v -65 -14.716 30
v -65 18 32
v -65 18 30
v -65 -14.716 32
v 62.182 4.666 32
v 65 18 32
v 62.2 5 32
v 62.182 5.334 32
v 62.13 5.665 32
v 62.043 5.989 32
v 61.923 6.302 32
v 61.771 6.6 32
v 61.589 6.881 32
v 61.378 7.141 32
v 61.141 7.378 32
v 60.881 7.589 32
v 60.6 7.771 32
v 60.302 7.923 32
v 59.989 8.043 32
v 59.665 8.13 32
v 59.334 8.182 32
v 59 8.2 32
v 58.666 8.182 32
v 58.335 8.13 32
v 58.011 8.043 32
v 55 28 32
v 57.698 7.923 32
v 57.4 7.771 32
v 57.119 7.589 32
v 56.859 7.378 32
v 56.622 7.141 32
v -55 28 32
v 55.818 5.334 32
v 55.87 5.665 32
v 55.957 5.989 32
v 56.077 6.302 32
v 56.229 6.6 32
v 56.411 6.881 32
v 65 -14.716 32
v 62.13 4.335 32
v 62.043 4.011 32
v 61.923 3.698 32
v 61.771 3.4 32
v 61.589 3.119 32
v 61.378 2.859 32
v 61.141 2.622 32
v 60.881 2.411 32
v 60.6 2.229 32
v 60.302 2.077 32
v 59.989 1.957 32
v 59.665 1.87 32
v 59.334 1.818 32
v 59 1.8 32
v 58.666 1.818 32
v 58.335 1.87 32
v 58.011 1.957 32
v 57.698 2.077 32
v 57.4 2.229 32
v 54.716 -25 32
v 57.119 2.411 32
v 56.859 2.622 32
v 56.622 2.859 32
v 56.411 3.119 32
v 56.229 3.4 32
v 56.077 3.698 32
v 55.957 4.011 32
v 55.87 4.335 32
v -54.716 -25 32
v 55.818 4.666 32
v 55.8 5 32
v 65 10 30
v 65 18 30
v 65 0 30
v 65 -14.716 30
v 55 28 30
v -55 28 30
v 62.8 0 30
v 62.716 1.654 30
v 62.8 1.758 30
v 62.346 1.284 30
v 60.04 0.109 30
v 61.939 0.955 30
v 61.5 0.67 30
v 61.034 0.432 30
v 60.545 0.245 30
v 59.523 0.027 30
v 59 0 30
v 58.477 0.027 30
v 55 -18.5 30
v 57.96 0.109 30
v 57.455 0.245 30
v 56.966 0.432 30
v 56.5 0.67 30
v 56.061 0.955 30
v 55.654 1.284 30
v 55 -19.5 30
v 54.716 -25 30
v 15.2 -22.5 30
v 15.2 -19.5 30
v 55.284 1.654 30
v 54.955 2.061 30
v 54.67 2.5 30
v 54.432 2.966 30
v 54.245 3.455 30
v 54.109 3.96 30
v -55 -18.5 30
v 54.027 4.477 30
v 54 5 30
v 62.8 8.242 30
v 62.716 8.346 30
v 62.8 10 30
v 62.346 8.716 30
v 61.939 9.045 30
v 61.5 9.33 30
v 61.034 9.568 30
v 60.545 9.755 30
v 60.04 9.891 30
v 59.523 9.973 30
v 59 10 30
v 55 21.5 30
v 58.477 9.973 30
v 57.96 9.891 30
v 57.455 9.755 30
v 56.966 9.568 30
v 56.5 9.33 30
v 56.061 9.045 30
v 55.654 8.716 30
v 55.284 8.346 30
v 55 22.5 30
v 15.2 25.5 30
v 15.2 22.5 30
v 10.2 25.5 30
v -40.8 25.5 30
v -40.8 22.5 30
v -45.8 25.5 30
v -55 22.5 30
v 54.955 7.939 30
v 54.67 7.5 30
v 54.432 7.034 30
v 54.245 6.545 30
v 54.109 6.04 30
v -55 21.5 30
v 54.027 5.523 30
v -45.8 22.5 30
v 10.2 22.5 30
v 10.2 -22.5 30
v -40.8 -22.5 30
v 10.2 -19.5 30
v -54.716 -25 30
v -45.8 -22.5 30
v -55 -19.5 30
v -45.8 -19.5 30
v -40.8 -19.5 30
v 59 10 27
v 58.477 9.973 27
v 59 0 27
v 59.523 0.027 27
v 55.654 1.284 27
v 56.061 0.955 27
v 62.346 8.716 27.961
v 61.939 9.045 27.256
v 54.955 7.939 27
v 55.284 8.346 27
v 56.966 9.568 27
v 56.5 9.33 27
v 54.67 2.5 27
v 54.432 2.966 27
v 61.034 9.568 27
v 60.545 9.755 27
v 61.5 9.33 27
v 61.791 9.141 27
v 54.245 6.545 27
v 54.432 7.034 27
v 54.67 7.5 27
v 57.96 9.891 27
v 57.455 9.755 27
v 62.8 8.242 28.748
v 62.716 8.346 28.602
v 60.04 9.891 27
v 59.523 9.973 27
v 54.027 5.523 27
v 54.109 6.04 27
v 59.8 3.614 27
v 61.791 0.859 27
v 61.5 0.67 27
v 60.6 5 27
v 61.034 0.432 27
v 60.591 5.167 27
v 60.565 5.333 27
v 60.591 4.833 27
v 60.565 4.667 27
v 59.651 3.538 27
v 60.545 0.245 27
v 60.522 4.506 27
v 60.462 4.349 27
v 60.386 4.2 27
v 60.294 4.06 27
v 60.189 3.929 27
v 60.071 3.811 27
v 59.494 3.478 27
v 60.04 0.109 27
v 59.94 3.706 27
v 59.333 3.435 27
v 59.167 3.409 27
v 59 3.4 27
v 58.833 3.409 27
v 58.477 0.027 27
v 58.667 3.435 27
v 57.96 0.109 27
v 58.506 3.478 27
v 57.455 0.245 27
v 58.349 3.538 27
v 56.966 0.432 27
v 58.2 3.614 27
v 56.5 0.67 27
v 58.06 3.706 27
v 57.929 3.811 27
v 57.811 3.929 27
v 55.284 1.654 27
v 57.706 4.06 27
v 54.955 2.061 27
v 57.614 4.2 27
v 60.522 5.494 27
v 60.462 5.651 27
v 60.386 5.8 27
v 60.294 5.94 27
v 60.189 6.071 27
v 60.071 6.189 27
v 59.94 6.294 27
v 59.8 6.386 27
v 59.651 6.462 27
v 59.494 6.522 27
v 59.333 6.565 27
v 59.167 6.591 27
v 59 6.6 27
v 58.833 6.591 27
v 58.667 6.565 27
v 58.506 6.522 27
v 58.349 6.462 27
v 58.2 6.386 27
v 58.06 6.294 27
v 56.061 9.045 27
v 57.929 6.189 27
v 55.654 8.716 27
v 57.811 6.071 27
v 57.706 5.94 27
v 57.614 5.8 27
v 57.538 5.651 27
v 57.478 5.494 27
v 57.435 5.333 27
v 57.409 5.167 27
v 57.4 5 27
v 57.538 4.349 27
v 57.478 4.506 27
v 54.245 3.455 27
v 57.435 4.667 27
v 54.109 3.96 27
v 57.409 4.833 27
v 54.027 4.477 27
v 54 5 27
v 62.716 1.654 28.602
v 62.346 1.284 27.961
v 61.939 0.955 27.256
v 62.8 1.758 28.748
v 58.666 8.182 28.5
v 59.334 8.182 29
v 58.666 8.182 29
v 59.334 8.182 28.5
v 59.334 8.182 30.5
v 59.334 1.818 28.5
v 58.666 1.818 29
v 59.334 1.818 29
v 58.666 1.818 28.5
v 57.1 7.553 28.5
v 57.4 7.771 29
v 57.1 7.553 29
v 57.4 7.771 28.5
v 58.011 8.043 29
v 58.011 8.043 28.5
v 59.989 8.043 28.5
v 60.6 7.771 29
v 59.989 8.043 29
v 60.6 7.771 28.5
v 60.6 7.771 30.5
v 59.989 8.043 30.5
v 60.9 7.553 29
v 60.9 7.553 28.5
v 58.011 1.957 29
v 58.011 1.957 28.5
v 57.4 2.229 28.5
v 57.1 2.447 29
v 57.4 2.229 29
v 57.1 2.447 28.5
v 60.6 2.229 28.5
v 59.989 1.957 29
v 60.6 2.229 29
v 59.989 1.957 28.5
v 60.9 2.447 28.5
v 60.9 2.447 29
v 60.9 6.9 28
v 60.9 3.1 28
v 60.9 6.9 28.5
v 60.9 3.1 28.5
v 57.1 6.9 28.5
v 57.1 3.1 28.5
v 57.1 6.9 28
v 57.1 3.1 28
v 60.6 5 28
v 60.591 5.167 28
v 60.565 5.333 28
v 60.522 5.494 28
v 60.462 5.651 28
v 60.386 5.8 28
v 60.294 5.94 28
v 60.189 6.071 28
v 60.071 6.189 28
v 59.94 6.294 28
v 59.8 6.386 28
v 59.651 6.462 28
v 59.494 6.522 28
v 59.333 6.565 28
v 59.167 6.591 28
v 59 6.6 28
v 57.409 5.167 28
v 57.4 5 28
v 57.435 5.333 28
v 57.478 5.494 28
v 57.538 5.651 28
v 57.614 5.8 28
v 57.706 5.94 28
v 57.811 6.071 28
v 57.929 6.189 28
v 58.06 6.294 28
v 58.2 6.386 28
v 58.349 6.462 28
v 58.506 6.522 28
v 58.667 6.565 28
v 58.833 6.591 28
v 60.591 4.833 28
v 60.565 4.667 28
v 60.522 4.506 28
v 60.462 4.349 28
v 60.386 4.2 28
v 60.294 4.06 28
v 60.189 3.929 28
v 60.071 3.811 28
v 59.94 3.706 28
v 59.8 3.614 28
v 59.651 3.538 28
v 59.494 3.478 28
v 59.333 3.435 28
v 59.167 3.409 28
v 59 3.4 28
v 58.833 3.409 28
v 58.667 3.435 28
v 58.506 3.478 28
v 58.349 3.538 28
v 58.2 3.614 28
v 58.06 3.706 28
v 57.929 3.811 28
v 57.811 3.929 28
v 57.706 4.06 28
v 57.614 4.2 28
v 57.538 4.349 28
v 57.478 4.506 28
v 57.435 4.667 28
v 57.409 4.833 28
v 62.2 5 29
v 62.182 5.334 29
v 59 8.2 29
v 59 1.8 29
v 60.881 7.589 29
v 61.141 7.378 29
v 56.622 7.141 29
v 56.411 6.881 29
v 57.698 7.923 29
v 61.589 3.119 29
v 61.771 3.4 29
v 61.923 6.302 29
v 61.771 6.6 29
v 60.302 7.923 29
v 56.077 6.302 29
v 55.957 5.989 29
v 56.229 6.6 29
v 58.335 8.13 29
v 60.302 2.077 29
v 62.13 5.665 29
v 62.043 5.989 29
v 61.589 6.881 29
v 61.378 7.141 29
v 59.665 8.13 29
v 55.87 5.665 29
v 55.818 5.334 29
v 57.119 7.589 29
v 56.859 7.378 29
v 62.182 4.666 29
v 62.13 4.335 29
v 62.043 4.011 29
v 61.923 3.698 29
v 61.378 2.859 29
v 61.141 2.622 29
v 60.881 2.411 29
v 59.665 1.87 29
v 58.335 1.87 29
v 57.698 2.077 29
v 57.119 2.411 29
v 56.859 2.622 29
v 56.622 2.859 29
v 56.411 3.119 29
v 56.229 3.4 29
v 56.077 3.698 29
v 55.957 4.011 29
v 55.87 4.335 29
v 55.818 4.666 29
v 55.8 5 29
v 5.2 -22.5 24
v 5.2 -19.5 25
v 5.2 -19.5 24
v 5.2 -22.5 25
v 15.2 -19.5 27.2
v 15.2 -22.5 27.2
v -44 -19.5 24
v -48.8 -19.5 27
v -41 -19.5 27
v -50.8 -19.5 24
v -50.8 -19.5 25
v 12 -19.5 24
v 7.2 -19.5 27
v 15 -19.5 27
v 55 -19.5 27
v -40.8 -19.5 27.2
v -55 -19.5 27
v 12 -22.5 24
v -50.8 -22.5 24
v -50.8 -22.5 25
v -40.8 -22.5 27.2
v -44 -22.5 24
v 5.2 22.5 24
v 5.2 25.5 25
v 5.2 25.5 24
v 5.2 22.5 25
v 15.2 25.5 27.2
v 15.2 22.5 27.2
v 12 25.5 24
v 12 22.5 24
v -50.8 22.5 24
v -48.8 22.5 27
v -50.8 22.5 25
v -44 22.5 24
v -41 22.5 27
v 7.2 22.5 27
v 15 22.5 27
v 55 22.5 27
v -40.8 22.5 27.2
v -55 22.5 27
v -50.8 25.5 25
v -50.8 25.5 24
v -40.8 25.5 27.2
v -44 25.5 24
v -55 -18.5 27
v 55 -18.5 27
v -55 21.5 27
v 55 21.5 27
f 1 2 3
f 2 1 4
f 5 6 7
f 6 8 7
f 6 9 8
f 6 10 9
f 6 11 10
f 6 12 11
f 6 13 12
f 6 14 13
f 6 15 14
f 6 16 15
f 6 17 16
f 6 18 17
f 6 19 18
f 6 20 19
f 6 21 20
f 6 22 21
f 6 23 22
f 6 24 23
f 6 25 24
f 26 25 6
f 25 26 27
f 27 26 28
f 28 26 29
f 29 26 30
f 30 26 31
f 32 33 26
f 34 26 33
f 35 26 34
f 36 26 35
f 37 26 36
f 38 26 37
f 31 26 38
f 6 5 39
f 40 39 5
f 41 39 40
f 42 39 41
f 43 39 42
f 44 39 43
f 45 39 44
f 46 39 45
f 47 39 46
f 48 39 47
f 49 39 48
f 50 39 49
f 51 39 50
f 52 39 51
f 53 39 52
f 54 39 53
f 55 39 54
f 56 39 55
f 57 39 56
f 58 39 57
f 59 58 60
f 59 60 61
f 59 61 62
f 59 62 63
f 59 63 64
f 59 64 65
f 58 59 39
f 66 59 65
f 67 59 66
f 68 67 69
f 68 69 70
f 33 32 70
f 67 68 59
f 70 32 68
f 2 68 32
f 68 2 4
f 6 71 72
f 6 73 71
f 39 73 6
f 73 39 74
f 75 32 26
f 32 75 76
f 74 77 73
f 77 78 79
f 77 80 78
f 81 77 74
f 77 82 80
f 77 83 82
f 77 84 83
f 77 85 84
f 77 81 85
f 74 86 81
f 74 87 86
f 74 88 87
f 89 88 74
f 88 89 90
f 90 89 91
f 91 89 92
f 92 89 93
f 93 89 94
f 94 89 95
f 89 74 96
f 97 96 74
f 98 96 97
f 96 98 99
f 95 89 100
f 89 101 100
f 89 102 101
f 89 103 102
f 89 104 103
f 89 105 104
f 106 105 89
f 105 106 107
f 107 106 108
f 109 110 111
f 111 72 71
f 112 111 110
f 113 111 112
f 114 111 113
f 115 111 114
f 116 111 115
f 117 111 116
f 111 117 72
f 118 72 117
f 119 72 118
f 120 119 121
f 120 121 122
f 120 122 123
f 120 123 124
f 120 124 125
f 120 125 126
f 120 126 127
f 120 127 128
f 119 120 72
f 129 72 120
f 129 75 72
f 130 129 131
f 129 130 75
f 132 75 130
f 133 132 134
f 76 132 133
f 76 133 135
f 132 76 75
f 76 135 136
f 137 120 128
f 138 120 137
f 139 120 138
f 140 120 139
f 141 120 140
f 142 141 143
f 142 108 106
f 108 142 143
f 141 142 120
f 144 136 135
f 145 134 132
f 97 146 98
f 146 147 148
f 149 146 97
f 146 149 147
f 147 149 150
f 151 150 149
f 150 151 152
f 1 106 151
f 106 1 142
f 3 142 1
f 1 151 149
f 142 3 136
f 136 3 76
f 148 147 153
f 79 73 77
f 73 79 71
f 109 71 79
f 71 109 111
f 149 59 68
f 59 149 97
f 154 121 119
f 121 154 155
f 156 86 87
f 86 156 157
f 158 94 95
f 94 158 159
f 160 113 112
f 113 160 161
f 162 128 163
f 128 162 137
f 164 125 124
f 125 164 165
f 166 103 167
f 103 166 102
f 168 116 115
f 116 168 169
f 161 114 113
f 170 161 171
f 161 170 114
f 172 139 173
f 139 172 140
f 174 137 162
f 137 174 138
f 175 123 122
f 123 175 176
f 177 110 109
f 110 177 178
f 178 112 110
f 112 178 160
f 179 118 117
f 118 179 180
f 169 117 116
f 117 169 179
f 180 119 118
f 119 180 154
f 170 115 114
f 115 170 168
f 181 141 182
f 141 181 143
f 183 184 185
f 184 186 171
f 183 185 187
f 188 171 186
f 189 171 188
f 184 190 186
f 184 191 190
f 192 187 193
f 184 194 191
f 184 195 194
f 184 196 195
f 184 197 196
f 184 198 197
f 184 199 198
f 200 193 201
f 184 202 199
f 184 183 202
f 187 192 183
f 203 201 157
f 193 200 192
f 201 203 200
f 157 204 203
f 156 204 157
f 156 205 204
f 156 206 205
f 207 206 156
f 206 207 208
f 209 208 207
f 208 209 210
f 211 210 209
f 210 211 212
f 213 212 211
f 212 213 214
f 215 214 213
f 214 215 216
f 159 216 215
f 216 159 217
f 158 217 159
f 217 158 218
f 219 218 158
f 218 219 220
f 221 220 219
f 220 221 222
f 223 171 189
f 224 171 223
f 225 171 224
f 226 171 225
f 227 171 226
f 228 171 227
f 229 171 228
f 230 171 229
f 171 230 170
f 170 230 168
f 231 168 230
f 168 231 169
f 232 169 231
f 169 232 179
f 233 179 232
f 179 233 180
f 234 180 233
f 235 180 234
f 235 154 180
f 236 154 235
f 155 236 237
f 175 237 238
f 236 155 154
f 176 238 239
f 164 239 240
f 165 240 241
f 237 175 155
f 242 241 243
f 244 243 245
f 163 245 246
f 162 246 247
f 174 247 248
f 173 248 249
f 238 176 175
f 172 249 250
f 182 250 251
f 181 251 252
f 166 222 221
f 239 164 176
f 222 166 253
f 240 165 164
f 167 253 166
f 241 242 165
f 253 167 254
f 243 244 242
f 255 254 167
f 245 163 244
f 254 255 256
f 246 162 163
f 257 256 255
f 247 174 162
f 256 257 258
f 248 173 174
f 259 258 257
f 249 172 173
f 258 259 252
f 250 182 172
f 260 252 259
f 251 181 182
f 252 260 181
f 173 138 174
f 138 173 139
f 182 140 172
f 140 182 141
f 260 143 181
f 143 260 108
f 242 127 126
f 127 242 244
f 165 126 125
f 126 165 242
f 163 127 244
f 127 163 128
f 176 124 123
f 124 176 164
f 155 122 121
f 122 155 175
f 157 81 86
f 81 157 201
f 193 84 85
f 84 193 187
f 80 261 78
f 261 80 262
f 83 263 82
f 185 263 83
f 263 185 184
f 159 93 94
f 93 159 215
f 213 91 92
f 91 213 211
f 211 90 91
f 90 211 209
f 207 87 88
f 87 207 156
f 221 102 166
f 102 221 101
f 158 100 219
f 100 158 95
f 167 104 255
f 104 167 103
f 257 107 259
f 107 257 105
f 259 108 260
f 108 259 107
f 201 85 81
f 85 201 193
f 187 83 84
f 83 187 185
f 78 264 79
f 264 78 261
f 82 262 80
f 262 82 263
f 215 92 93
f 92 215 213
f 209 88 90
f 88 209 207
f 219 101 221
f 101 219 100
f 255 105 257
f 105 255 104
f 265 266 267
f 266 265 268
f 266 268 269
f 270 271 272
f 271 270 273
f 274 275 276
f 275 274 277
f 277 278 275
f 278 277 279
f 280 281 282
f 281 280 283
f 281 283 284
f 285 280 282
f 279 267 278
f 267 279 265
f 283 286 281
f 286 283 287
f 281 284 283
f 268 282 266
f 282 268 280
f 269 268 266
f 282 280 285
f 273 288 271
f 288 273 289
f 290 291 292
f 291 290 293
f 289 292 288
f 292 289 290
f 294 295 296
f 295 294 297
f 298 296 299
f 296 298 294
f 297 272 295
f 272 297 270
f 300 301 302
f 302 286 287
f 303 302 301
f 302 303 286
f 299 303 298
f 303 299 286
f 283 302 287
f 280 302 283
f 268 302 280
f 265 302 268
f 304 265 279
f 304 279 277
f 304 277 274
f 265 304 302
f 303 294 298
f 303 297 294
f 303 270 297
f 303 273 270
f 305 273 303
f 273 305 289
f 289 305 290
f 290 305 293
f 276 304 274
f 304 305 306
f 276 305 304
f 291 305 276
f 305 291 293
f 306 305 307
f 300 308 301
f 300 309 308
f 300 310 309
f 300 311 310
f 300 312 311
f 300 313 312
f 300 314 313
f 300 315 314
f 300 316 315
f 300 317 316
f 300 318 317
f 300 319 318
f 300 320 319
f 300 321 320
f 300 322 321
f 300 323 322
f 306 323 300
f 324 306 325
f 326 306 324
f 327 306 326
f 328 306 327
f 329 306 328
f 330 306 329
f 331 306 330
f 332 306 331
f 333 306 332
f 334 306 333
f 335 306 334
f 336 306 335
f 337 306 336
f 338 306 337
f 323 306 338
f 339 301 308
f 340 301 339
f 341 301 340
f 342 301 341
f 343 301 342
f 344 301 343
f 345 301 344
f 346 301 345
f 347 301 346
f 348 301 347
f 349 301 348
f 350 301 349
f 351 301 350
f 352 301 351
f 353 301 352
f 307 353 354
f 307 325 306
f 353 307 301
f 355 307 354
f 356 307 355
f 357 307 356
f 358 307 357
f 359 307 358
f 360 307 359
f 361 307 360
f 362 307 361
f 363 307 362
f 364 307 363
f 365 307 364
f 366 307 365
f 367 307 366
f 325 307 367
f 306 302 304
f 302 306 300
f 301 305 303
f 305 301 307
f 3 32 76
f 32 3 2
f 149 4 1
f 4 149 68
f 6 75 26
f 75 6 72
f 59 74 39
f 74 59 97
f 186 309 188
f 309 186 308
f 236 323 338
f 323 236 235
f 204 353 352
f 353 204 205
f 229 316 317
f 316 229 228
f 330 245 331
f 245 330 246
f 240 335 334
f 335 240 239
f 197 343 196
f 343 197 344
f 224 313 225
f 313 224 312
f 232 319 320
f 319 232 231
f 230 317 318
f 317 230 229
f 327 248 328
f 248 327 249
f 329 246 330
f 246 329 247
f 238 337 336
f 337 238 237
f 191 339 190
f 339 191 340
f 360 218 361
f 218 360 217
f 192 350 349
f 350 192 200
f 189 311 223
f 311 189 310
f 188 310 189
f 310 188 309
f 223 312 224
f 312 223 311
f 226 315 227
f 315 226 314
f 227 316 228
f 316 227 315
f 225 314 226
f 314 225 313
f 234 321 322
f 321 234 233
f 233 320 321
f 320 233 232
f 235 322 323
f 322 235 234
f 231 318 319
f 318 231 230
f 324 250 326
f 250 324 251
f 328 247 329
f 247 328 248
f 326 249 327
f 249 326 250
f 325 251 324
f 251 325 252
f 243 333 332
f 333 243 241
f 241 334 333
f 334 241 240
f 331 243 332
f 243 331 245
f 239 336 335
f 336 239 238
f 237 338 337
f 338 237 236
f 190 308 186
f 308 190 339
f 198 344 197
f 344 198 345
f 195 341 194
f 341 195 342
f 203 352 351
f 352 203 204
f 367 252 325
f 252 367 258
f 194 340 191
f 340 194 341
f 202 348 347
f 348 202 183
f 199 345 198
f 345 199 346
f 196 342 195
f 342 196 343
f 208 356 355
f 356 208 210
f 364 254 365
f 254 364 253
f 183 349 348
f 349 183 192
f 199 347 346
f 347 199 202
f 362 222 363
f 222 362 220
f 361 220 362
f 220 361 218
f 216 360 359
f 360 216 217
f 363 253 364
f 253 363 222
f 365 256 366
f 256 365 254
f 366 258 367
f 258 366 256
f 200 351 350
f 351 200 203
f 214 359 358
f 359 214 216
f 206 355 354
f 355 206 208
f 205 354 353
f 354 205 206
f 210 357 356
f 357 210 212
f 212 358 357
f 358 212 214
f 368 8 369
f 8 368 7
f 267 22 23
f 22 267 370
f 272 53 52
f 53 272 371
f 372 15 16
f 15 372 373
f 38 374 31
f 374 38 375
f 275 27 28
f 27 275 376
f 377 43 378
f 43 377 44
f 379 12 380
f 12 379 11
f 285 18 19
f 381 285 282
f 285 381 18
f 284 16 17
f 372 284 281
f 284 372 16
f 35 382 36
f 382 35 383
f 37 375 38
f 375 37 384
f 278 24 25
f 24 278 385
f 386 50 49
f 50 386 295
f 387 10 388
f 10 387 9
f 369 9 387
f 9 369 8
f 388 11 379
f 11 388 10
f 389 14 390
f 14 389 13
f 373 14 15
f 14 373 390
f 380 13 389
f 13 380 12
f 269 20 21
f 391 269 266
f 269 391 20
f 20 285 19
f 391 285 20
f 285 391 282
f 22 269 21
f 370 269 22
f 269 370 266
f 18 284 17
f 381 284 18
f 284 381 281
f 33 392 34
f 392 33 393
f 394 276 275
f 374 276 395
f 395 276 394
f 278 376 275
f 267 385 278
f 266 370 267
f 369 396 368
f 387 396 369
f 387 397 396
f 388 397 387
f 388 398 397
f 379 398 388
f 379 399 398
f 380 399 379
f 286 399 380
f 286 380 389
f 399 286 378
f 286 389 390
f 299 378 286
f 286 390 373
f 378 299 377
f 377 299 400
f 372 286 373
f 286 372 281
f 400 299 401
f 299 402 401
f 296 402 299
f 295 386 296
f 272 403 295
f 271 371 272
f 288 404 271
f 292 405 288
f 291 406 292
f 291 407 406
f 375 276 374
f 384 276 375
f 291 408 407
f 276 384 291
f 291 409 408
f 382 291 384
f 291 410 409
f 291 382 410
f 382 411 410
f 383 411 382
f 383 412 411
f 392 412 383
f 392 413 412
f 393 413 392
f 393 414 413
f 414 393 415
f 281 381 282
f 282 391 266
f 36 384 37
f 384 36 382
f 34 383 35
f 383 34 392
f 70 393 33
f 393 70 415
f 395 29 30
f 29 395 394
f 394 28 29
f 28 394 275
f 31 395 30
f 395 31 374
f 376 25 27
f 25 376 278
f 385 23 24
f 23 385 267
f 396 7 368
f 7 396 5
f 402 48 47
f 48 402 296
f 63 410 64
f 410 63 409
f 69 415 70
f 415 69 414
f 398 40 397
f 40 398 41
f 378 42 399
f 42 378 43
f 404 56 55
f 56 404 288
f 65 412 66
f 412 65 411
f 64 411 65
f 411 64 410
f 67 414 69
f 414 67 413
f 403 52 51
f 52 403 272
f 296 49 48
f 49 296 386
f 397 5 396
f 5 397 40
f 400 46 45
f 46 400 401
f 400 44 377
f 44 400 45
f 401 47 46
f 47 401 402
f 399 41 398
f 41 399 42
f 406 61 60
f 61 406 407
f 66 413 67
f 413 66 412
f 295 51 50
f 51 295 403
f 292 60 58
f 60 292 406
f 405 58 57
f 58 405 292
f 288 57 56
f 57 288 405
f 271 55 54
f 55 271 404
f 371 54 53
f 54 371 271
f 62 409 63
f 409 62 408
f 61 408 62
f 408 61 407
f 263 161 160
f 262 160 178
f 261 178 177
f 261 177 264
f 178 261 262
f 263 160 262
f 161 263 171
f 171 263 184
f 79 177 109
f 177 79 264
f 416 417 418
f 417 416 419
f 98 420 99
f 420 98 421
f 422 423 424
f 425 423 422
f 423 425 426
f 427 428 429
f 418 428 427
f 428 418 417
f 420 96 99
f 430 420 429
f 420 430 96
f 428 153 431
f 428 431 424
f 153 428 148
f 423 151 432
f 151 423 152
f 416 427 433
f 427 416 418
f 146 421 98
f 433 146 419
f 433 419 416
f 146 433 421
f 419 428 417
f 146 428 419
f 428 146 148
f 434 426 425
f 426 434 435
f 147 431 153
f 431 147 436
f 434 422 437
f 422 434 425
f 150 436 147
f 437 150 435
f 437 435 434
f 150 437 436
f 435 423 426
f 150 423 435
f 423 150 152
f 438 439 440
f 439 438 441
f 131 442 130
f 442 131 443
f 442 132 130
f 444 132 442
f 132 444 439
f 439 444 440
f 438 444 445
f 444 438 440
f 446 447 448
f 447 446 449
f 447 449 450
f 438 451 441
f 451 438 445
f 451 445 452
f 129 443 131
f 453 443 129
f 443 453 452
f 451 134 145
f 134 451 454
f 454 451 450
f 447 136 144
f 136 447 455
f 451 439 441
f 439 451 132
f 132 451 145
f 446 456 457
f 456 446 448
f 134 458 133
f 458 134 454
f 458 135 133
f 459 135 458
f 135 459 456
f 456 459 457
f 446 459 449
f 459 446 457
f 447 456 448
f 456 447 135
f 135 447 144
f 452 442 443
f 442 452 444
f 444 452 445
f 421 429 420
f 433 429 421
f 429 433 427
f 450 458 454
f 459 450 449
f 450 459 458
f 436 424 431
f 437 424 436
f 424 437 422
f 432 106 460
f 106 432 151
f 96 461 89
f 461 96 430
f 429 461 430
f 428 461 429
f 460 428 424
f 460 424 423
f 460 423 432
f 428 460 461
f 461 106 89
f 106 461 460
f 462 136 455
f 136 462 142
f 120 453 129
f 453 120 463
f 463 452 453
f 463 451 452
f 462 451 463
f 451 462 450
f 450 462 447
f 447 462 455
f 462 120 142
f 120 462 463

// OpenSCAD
// PRUSA MM upgrade
// SuperSwitch-cover
// GNU GPL v3
// Josef Průša <iam@josefprusa.cz> and contributors
// http://www.reprap.org/wiki/Prusa_Mendel
// http://prusamendel.org

module holder_doors()
{
    difference()
    {
    translate([10,-20,17]) rotate([0,0,0]) cube([10,3,7]);
    translate([6,-20,14]) rotate([0,-45,0]) cube([15,5,5]);
    
    }
}
module doors()
{
    difference()
    {
        union()
        {
        translate([-65,-25,30]) rotate([0,0,0]) cube([130,53,2]);
        translate([59,5,27]) cylinder( h=5, r=5, $fn=60 );   
        }
        //corners
        translate([-67,16,1]) rotate([0,0,45]) cube([20,20,33]);
        translate([-67,-41,1]) rotate([0,0,45]) cube([20,20,33]);
        translate([67,16,1]) rotate([0,0,45]) cube([20,20,33]);
        translate([67,-41,1]) rotate([0,0,45]) cube([20,20,33]);
    
        // M3 screw
        translate([59,5,17]) cylinder( h=45, r=1.6, $fn=60 );     
        translate([59,5,29]) cylinder( h=3.5, r=3.2, $fn=60 );     
    
        translate([58.5,-0,21.3]) rotate([0,30,0]) cube([10,10,10]);   
        translate([62.8,-0,20])  cube([10,10,10]);   
       
       translate( [ 59 , 5 ,32] ) rotate([0,180,0])
        {
            intersection(){cylinder(r=3.2, h=10, $fn=30);
            translate( [ 0 , 0 , 2.5 ] ) cube([3.8,8,2], center=true);}
            translate( [ 0 , 0 , 3 ] ) cube([3.8,3.8,2], center=true);
        } 
        
        
    }

    translate([-55,-19.5,27]) cube([110,1,3]);
    translate([-55,21.5,27]) cube([110,1,3]);
    
    // holders
    difference()
    {
            union()
            {
            translate([-4.8,-2.5,7]) holder_doors();
            translate([-60.8,-2.5,7]) holder_doors();
            translate([-4.8,42.5,7]) holder_doors();
            translate([-60.8,42.5,7]) holder_doors();
            }
        translate([11,-40,23]) rotate([0,45,0]) cube([10,80,10]);
        translate([-45,-40,23]) rotate([0,45,0]) cube([10,80,10]);
    }
    
    }


doors();
